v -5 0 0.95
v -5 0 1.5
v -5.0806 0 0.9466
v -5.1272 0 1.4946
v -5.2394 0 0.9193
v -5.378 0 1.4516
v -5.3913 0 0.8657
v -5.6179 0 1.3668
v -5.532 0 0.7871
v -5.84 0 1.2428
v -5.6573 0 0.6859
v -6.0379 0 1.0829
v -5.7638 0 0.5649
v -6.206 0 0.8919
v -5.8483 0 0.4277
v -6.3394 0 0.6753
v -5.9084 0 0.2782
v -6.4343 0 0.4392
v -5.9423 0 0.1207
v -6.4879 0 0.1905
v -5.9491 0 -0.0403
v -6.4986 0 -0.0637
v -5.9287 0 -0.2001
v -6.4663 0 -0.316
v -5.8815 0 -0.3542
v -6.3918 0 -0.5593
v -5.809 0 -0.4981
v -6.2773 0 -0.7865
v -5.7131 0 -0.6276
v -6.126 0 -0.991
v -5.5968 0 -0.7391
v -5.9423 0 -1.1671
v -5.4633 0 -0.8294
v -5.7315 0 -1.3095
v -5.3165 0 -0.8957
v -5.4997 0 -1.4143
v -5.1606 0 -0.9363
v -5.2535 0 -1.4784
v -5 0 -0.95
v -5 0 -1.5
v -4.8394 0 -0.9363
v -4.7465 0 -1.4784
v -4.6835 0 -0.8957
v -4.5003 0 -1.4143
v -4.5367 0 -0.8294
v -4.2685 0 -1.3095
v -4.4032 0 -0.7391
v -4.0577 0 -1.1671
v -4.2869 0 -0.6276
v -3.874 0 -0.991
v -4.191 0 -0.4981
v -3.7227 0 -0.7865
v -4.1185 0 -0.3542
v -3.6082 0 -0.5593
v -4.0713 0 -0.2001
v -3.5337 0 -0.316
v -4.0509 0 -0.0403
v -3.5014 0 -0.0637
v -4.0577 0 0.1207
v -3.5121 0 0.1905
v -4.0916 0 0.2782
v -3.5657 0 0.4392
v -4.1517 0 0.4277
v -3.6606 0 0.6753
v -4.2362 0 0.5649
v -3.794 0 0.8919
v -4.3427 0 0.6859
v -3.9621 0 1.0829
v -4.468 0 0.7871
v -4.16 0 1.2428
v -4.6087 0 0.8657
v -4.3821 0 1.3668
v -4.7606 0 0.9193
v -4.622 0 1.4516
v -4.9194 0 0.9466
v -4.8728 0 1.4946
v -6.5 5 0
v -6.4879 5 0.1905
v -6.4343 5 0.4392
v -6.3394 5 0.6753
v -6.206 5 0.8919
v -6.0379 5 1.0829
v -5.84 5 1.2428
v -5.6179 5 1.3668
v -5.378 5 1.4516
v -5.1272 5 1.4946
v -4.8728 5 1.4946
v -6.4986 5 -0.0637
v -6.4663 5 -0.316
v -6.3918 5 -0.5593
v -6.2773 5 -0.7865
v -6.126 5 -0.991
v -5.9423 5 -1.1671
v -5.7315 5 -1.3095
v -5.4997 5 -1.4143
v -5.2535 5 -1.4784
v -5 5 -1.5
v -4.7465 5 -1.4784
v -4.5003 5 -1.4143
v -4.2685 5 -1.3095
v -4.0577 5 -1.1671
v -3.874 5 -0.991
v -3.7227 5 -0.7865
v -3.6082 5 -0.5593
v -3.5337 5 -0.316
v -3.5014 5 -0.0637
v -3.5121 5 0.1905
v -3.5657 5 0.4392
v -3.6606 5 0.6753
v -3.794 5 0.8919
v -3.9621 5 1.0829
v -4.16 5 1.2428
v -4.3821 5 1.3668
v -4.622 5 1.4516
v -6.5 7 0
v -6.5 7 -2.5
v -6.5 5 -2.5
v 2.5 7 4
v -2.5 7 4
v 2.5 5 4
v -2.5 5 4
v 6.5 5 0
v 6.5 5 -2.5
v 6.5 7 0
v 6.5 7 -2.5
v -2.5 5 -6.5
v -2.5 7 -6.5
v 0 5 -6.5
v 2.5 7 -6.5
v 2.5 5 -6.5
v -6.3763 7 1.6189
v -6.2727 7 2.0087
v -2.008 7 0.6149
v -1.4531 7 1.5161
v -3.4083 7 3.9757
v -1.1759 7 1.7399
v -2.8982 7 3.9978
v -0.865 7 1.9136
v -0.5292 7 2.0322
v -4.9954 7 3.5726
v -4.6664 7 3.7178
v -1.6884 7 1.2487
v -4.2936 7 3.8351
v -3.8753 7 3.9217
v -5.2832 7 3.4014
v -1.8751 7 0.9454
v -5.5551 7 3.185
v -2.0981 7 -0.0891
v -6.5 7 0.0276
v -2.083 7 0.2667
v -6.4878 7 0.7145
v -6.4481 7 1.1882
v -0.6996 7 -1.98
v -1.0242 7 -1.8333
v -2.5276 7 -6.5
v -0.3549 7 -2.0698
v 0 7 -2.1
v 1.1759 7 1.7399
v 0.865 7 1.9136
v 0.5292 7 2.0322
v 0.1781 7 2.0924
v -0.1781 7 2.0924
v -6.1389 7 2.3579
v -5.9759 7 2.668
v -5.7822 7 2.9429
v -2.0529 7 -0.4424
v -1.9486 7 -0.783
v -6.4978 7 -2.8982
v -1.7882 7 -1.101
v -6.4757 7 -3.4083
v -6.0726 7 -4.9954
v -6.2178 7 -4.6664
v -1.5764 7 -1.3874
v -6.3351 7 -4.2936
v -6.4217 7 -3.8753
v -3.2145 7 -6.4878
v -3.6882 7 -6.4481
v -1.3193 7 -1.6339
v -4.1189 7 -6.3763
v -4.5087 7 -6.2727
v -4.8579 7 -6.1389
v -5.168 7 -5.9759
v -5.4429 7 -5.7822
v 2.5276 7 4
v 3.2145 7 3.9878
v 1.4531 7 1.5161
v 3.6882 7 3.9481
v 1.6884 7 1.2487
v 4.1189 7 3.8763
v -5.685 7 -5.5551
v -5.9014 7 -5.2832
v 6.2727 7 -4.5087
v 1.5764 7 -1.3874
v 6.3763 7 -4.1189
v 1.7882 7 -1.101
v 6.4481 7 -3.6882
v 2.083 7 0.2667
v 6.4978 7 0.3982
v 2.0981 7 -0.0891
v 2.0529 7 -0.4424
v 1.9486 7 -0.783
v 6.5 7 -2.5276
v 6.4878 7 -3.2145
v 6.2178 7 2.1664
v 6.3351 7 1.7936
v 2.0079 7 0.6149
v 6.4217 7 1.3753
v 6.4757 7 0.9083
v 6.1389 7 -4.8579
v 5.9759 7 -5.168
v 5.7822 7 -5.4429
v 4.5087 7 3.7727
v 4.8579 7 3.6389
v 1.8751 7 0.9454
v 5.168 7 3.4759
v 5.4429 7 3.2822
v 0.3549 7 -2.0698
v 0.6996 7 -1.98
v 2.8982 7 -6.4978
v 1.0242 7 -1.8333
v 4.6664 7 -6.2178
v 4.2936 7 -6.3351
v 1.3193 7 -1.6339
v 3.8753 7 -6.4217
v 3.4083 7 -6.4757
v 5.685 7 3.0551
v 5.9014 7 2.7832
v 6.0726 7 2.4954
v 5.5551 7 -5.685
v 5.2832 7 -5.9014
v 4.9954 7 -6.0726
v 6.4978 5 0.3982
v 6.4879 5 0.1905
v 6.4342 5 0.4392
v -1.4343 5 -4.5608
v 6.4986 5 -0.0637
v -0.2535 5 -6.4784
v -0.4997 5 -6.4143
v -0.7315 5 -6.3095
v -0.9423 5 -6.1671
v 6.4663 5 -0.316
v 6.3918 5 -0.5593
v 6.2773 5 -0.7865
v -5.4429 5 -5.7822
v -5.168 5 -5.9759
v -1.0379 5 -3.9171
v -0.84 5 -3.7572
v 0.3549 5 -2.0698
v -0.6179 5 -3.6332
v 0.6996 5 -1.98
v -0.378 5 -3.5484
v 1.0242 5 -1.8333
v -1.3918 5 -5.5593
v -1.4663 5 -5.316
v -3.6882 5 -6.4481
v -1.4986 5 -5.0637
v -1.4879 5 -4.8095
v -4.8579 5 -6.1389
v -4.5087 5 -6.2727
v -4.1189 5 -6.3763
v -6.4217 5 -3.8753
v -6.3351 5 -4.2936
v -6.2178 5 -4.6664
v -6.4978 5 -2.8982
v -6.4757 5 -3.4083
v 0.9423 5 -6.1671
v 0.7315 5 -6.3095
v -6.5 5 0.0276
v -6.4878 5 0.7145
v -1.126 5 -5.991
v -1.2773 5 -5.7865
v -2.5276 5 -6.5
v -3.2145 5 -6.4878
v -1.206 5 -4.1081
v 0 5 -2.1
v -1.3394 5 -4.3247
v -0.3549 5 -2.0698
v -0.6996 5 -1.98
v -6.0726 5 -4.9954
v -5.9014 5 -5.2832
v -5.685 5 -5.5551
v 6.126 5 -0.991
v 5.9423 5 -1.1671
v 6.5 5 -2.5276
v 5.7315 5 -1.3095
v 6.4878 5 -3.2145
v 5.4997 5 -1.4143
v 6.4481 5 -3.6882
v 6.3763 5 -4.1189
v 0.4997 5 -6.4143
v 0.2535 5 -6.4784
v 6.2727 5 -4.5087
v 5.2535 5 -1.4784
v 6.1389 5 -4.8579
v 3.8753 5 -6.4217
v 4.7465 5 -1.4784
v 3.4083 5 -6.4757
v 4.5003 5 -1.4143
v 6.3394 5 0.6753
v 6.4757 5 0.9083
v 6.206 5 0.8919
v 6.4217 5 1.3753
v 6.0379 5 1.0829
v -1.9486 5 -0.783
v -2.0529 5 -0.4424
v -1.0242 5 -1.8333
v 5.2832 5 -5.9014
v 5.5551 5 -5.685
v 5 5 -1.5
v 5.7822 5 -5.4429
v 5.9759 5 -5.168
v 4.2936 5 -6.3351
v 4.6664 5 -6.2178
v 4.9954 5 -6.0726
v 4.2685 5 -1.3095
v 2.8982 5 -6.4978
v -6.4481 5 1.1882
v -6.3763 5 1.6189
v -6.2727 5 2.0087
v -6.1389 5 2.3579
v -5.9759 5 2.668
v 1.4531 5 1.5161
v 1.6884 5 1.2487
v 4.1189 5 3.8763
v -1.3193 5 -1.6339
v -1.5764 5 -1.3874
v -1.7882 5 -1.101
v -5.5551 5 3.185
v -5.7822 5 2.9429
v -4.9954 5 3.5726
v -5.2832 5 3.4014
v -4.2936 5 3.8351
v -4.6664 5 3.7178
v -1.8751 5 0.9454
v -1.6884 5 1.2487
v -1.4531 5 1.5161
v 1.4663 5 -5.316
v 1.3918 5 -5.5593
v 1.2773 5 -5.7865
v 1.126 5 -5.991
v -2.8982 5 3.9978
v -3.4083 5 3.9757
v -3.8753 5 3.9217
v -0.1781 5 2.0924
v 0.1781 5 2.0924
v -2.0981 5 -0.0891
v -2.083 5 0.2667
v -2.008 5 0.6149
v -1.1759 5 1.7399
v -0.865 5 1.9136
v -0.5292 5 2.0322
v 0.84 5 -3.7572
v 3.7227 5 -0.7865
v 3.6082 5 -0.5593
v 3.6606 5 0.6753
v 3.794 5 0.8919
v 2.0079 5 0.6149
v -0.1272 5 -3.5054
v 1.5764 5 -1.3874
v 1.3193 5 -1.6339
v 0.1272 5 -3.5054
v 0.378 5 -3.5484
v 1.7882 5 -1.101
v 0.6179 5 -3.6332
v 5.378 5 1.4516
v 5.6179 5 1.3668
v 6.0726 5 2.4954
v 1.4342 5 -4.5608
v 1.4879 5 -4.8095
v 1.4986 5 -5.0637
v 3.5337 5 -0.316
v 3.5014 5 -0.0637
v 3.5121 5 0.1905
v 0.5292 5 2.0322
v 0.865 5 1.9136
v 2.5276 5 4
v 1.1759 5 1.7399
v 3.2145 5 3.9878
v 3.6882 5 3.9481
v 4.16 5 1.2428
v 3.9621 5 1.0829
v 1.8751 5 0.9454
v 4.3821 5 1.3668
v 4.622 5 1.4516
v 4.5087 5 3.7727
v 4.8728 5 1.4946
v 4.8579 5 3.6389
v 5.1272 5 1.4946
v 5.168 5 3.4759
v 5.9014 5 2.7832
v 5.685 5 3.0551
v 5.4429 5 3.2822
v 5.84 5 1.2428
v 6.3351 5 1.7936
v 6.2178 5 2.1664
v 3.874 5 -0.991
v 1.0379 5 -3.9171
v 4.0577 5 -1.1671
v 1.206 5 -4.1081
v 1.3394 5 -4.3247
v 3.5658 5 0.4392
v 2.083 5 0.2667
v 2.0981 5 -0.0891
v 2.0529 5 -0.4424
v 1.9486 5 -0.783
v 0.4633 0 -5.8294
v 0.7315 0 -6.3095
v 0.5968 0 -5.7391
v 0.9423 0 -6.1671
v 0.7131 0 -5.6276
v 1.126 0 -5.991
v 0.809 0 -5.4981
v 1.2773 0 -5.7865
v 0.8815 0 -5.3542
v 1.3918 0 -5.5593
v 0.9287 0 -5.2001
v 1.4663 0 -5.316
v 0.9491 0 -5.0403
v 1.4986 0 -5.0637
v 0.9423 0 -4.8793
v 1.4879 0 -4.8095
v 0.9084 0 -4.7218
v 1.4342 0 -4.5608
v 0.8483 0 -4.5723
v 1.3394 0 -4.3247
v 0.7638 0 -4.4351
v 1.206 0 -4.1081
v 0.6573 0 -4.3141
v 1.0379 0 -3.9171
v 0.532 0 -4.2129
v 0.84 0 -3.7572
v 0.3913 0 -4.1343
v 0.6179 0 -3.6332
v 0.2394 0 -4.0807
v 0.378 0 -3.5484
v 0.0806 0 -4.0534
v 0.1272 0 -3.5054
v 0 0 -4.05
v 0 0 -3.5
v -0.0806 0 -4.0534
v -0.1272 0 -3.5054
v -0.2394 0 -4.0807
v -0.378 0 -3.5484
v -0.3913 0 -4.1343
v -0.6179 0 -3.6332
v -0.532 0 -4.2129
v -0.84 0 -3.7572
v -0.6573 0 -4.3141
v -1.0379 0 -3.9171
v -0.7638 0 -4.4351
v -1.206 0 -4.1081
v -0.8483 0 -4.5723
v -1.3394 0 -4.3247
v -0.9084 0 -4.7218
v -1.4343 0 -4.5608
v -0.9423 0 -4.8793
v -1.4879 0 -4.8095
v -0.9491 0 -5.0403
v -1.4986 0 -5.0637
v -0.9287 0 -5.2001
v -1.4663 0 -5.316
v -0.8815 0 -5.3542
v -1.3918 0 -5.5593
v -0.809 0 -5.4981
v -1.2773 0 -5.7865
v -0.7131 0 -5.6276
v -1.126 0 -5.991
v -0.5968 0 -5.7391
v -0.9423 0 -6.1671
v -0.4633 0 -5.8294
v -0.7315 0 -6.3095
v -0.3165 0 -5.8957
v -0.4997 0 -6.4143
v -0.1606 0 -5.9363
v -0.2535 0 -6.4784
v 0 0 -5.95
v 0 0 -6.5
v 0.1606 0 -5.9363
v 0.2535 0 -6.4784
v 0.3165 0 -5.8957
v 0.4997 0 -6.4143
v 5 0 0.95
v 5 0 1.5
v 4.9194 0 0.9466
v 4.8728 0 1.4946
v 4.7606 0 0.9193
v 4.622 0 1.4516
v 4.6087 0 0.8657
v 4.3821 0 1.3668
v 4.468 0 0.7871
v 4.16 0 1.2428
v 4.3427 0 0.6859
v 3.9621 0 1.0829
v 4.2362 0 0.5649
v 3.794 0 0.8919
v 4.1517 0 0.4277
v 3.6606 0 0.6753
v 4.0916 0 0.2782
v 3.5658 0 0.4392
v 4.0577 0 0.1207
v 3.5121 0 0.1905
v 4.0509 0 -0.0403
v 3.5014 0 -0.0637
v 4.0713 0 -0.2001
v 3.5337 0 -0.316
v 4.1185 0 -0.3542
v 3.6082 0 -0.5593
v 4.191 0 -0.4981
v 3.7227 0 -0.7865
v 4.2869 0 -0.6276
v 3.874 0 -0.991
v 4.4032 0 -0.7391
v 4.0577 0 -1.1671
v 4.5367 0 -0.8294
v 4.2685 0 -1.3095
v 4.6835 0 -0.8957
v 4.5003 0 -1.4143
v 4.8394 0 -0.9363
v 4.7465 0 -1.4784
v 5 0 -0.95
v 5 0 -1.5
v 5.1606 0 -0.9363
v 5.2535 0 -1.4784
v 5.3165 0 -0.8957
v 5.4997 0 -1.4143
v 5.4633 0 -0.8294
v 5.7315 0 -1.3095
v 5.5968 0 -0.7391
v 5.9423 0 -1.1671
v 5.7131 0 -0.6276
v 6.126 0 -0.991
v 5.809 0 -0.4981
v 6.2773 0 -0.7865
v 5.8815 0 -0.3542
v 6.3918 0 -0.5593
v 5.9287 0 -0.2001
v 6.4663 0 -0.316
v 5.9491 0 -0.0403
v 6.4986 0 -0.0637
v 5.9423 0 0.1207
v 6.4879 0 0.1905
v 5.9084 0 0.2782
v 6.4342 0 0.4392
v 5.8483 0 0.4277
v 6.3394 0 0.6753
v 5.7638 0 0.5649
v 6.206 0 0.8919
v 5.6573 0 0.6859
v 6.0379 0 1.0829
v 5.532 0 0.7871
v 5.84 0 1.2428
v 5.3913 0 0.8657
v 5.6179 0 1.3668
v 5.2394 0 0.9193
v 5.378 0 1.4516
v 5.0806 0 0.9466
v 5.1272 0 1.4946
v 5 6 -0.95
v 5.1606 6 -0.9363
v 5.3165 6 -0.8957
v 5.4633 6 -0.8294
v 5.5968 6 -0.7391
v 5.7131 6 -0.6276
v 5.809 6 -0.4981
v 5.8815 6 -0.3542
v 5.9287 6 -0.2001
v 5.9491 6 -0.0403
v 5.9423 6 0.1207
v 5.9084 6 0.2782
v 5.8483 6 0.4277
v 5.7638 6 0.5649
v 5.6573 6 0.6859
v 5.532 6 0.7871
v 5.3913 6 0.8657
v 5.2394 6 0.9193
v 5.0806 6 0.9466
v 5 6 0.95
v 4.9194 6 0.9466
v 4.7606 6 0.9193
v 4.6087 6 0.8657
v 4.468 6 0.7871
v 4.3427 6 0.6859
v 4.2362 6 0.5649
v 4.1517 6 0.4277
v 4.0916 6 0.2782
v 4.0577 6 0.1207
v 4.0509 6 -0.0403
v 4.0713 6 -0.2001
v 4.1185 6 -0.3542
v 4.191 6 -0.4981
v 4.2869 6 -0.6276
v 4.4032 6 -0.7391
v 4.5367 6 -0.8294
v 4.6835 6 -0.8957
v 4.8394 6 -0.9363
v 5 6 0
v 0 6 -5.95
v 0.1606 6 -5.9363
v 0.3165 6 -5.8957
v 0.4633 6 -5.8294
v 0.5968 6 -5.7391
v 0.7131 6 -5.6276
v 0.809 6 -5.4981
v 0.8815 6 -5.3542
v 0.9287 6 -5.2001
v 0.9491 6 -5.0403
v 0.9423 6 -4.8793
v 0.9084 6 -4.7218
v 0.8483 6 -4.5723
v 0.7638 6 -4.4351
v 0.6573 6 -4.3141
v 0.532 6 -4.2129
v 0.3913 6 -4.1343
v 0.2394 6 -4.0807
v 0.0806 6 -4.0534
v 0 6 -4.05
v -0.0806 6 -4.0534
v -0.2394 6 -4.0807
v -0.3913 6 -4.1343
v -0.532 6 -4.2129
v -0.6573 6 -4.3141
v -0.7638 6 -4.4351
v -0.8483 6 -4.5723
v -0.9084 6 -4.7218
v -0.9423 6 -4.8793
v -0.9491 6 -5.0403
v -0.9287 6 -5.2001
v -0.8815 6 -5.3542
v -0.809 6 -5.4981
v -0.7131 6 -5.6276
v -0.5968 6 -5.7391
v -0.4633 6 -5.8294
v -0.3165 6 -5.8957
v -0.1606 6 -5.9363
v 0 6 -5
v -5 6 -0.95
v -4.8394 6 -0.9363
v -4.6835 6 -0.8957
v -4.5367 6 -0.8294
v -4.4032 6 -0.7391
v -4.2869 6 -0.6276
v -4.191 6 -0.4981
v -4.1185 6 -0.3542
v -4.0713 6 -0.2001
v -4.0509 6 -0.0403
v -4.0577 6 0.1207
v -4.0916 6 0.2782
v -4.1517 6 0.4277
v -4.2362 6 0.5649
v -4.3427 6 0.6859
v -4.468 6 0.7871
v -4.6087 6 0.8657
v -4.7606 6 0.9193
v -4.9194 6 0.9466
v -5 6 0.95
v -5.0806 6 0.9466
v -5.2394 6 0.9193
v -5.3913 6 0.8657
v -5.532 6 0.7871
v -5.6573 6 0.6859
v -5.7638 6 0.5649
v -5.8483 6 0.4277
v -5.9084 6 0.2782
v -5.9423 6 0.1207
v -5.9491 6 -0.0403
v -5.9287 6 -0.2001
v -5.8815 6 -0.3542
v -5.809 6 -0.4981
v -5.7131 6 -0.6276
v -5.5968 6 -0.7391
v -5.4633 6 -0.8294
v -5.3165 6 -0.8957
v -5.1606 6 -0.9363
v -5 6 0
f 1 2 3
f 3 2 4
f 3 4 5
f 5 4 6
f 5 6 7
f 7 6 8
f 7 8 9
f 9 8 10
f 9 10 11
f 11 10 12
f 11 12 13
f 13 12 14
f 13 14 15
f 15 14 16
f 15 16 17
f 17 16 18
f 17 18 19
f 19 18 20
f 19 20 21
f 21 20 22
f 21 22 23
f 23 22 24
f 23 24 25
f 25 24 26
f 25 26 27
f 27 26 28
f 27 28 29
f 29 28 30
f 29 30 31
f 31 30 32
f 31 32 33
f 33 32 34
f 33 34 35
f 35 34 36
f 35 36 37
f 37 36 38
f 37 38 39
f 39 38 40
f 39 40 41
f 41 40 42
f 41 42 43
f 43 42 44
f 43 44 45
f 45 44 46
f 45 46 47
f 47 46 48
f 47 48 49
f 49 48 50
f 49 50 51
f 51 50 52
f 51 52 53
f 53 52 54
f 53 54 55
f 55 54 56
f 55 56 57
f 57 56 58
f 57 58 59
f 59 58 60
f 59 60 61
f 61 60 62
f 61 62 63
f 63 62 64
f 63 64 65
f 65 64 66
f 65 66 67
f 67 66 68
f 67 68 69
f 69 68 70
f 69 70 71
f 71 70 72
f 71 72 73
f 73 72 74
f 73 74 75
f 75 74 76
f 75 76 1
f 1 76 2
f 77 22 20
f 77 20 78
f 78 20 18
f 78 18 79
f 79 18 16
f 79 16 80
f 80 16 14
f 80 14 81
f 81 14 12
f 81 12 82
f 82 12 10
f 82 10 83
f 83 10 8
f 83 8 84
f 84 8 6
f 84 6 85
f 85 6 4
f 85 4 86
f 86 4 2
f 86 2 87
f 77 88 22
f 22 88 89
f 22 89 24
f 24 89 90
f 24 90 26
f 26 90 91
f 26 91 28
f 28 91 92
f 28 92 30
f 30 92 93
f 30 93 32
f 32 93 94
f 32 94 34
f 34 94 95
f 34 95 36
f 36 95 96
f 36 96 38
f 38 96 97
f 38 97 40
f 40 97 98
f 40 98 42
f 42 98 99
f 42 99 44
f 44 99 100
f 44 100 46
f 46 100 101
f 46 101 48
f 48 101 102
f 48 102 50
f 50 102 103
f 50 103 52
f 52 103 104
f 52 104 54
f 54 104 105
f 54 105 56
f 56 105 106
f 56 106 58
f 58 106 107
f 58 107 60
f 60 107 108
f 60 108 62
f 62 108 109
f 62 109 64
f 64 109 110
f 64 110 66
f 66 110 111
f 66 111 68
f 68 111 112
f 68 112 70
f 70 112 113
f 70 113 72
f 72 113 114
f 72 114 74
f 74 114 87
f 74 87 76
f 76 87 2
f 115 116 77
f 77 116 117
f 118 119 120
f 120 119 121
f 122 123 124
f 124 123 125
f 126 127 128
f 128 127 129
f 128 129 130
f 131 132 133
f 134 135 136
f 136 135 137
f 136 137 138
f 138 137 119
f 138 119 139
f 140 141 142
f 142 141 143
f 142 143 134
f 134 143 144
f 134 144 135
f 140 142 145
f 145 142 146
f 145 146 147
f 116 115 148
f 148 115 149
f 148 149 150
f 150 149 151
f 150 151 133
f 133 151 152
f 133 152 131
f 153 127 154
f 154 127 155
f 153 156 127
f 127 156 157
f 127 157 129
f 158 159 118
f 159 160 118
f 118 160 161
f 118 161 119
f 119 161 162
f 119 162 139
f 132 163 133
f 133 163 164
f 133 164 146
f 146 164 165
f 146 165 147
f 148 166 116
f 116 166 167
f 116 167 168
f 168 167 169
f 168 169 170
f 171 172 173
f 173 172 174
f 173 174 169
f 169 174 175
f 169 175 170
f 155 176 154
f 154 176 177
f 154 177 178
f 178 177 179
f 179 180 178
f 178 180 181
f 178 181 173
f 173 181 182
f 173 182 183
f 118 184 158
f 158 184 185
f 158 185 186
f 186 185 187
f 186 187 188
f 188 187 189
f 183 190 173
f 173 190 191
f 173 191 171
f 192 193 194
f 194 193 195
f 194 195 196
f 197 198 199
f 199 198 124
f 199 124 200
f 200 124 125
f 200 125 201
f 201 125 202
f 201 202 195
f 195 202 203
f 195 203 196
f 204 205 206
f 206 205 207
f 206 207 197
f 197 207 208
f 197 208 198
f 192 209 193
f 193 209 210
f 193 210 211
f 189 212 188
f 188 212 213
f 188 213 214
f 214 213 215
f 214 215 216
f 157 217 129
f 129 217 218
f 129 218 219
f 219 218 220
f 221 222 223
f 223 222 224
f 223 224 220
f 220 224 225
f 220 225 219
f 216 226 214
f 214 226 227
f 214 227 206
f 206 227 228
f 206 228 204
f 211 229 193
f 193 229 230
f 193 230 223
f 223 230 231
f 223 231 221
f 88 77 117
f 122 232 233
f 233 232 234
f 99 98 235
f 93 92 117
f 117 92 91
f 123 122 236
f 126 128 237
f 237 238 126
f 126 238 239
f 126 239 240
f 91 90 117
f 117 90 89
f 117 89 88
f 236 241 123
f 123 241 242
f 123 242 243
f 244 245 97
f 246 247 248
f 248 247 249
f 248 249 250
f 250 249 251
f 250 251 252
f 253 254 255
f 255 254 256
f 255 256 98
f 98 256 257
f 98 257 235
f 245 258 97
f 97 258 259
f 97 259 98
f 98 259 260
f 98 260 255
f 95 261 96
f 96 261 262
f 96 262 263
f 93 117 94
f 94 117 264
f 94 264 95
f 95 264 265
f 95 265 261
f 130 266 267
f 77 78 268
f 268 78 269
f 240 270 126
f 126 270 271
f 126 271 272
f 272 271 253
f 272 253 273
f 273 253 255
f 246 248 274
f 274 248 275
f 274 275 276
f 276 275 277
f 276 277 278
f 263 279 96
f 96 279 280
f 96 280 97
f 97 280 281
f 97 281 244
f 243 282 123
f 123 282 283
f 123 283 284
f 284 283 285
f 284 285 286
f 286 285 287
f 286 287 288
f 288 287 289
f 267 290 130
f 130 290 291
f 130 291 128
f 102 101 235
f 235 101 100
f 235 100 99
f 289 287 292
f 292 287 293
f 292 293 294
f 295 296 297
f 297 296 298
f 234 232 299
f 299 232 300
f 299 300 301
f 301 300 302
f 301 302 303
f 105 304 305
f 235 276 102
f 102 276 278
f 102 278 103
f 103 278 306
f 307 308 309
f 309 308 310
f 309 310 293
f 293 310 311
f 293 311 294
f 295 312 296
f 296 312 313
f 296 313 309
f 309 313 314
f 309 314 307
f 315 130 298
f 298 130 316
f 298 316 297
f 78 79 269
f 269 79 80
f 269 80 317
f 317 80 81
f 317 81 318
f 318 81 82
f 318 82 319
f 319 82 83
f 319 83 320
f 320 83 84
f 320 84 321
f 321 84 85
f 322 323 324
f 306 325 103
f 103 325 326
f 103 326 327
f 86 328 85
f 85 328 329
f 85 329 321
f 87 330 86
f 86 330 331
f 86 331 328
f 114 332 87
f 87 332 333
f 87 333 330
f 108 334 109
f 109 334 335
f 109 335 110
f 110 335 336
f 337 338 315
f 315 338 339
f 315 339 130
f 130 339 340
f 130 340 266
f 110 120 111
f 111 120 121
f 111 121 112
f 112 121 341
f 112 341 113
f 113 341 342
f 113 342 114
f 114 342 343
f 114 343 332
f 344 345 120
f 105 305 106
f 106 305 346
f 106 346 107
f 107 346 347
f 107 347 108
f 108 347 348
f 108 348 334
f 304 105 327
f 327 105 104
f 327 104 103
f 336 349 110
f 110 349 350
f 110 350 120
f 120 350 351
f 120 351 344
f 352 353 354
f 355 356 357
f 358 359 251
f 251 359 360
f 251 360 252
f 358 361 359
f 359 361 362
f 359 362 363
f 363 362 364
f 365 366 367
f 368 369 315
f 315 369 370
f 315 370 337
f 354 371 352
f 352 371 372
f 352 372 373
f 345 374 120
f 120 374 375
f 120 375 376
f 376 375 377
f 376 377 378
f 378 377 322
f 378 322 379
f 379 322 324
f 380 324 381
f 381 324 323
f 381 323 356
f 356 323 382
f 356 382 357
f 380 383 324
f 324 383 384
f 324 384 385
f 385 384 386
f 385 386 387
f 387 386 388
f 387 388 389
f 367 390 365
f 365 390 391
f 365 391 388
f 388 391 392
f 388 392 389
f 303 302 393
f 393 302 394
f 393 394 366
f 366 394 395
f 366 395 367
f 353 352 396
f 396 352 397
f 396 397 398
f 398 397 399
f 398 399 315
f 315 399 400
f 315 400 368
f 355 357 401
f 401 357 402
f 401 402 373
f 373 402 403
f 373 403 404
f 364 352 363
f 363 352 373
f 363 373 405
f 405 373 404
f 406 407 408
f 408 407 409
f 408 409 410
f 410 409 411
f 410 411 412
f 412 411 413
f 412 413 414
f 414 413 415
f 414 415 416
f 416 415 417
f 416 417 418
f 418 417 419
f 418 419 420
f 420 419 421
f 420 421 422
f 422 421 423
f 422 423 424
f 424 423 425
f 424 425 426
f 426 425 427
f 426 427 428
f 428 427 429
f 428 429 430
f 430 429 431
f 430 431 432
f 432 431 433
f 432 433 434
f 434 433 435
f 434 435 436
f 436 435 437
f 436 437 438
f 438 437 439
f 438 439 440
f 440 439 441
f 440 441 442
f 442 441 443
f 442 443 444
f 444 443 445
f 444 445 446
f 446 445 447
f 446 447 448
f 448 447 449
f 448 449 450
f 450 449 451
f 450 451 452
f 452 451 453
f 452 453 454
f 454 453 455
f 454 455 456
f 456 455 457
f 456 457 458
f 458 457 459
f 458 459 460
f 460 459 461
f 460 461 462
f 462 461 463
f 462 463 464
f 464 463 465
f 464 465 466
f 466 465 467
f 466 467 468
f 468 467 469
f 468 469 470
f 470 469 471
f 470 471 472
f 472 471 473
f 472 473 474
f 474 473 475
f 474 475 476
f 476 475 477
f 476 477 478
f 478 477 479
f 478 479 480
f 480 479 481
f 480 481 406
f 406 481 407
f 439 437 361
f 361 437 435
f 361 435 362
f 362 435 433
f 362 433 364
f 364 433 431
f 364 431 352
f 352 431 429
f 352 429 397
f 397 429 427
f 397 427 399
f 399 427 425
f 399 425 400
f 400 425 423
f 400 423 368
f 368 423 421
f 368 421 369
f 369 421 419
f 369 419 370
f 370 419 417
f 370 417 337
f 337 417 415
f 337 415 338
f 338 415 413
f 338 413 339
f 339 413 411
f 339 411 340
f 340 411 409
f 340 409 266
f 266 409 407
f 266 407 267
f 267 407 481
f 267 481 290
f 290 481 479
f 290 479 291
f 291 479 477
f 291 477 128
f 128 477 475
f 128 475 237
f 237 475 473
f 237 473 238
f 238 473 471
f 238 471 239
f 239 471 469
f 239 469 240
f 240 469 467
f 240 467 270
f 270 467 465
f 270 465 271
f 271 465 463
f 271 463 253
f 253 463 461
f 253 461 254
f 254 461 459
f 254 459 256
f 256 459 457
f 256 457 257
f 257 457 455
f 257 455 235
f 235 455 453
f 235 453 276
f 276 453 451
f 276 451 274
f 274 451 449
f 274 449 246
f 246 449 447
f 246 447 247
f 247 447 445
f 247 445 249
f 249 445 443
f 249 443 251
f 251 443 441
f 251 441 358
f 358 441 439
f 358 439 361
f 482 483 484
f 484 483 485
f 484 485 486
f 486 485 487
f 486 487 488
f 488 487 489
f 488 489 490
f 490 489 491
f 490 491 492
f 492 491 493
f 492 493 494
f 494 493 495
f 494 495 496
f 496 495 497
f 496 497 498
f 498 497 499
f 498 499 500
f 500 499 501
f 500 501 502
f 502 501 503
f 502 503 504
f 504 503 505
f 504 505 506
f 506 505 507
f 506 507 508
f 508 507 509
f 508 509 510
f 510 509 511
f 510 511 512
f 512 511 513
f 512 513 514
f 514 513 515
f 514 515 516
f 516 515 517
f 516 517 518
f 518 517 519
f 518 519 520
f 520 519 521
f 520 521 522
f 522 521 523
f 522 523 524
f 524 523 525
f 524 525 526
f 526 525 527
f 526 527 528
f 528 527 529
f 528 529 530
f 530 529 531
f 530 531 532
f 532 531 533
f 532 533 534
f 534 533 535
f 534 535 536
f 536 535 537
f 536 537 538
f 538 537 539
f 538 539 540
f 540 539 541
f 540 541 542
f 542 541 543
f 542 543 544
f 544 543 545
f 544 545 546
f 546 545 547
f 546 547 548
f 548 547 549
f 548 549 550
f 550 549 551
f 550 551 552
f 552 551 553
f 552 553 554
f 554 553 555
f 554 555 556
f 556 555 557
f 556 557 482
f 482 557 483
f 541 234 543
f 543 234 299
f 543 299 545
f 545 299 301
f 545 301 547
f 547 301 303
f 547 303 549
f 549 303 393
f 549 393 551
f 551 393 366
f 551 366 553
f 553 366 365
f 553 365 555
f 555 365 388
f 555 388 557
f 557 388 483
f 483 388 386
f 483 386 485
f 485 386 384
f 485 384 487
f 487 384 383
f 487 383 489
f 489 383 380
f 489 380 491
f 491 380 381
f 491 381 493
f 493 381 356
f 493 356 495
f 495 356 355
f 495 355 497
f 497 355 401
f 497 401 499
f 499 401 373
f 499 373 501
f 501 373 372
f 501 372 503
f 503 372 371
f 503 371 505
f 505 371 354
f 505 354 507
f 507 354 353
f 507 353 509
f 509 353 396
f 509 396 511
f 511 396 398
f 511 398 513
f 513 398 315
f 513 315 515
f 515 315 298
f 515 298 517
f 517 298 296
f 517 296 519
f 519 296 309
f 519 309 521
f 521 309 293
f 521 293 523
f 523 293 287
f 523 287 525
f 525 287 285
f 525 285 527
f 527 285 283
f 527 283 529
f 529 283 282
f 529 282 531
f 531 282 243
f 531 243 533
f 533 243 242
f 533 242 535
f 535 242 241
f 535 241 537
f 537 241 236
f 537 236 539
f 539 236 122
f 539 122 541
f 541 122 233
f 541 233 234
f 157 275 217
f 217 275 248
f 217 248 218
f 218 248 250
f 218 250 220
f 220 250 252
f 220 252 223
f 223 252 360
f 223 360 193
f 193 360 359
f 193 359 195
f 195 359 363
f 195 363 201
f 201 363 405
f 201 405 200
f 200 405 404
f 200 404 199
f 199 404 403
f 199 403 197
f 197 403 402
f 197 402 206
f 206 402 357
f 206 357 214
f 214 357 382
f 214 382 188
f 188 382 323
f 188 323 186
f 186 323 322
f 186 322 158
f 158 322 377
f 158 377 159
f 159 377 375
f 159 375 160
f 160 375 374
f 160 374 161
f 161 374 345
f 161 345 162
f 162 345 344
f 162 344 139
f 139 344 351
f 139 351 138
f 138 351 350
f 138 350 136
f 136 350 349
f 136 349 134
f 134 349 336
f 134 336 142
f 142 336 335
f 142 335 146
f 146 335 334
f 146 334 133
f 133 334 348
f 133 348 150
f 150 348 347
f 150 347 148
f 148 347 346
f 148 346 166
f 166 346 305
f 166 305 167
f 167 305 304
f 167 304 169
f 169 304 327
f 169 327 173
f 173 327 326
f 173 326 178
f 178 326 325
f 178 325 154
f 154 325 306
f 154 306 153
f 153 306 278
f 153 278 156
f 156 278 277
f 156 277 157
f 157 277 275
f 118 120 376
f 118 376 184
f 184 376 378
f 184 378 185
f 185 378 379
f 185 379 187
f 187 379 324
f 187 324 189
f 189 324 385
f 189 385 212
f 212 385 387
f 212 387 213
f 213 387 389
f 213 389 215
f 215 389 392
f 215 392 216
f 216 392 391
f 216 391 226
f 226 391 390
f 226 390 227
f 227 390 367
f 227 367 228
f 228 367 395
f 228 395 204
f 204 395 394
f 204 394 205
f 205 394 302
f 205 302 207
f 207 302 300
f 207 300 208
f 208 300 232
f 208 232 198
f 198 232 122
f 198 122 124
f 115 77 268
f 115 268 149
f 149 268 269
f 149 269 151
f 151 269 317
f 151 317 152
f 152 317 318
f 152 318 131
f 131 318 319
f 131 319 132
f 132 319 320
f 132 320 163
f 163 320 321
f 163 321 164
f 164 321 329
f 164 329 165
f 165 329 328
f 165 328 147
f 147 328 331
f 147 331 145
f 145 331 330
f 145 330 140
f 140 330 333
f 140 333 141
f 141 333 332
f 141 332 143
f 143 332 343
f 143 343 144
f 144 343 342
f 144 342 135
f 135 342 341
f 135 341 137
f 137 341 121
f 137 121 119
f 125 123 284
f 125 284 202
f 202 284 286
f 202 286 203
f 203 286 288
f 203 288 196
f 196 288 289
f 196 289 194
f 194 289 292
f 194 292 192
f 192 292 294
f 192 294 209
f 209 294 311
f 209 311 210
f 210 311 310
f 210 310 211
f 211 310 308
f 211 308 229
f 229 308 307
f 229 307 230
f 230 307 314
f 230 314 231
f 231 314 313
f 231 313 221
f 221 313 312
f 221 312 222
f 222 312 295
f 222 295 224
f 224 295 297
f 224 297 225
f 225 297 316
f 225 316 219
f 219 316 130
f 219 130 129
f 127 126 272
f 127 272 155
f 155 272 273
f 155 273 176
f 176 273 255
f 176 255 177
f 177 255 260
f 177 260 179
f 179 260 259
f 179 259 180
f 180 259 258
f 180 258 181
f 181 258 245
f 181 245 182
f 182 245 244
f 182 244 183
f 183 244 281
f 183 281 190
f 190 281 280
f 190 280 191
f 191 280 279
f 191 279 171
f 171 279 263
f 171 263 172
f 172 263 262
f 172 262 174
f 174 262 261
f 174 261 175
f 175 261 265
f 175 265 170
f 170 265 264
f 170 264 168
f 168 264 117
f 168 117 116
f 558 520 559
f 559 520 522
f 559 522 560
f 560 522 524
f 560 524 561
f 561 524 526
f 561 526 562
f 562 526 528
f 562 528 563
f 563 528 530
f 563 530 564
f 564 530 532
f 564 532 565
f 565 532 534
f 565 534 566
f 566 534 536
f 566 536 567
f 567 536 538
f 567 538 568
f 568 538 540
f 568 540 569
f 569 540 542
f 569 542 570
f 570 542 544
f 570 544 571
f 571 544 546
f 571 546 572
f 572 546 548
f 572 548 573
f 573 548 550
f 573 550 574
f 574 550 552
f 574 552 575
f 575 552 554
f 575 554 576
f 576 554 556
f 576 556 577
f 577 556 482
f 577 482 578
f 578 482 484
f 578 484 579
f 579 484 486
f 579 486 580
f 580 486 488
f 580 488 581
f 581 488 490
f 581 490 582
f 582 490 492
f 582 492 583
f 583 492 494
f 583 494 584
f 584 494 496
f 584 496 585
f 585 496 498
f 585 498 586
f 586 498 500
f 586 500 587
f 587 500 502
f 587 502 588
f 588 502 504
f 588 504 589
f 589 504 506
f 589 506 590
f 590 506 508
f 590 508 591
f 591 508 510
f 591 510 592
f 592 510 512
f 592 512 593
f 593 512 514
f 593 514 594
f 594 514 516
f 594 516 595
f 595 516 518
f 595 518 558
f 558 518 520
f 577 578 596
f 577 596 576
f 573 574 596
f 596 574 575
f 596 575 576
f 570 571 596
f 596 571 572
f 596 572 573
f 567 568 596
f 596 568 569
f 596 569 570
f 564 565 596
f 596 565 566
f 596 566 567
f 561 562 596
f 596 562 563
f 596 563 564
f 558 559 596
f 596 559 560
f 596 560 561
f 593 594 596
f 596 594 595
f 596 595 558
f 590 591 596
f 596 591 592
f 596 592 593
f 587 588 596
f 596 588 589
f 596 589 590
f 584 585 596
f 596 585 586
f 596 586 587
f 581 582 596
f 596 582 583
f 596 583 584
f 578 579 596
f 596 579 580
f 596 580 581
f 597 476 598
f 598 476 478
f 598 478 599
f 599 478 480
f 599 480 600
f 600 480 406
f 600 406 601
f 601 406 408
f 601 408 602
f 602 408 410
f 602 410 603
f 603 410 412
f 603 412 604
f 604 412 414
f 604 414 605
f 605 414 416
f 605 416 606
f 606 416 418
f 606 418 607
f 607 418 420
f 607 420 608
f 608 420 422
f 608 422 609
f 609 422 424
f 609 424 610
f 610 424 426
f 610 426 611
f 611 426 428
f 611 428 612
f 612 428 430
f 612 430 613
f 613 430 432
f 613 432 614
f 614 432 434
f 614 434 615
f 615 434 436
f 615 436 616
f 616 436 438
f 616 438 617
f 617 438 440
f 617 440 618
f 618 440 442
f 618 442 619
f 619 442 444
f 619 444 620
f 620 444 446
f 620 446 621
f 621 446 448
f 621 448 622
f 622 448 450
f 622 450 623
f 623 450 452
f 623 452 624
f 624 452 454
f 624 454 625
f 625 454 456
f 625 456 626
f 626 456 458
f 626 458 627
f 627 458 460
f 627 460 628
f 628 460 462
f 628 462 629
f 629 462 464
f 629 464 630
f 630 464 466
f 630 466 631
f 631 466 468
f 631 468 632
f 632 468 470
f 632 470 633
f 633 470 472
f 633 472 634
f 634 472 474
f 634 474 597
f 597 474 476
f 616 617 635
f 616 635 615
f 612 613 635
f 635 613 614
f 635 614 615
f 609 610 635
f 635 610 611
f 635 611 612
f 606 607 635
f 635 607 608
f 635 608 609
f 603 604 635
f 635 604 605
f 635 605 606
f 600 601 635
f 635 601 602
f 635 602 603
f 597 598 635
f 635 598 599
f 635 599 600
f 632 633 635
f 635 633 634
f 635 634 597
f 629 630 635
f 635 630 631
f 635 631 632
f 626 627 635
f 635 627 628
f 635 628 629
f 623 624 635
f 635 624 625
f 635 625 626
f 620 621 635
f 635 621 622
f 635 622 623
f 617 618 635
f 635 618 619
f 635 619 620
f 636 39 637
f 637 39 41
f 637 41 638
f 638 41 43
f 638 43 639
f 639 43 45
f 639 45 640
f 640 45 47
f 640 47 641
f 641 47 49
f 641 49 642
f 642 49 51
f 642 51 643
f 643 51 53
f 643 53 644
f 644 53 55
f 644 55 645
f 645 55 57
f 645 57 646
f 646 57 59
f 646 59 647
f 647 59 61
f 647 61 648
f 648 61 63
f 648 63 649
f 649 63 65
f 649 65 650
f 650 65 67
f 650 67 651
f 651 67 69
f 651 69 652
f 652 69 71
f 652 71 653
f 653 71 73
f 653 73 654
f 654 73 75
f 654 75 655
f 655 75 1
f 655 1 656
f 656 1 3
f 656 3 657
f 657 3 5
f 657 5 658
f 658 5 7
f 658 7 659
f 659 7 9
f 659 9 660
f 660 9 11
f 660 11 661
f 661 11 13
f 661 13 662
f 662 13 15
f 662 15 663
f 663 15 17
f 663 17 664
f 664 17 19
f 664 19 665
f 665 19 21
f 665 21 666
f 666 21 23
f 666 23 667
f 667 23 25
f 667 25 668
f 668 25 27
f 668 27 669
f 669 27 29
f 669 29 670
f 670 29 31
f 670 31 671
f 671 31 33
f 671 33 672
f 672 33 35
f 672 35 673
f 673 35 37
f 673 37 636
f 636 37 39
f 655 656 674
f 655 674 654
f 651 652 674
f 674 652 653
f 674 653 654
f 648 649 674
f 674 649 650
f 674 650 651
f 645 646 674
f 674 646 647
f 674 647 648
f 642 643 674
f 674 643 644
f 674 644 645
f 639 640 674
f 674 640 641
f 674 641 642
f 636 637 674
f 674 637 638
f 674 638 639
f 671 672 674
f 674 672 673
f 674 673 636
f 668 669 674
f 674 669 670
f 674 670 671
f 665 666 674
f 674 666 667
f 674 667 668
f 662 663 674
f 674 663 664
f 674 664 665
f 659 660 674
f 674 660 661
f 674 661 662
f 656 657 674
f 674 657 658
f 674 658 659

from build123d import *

# Parameters (mm, degrees)
SKETCH_1_R          = 1.5
EXTRUDE_1_DEPTH     = 5
EXTRUDE_1_2_DEPTH   = 5
EXTRUDE_1_3_DEPTH   = 5
SKETCH_2_W          = 13
SKETCH_2_H          = 10.5
EXTRUDE_6_DEPTH     = 2
SKETCH_1_6_R        = 2.1
CUT_EXTRUDE_2_DEPTH = 7
FILLET_1_SIZE       = 4
SKETCH_1_7_R        = 0.95
CUT_EXTRUDE_3_DEPTH = 6


with BuildPart() as part:
    # 草图1 → 凸台-拉伸1 (new body)
    with BuildSketch(Plane(origin=(0, 0, 0), x_dir=(1, 0, 0), z_dir=(0, 1, 0))):
        with Locations(Location((-5, 0, 0), (0, 0, 270))):
            Circle(SKETCH_1_R)
    extrude(amount=EXTRUDE_1_DEPTH)



with BuildPart() as body_2:
    # 草图1 → Extrude 1 2 (new body)
    with BuildSketch(Plane(origin=(0, 0, 0), x_dir=(1, 0, 0), z_dir=(0, 1, 0))):
        with Locations(Location((0, 5, 0), (0, 0, 270))):
            Circle(SKETCH_1_R)
    extrude(amount=EXTRUDE_1_2_DEPTH)


with BuildPart() as body_3:
    # 草图1 → Extrude 1 3 (new body)
    with BuildSketch(Plane(origin=(0, 0, 0), x_dir=(1, 0, 0), z_dir=(0, 1, 0))):
        with Locations(Location((5, 0, 0), (0, 0, 270))):
            Circle(SKETCH_1_R)
    extrude(amount=EXTRUDE_1_3_DEPTH)


with BuildPart() as part_1:
    add(part.part)

    add(body_2.part)  # 凸台-拉伸6 merges body 2

    add(body_3.part)  # 凸台-拉伸6 merges body 3
    # 草图2 → 凸台-拉伸6 (add)
    with BuildSketch(Plane(origin=(0, 5, 0), x_dir=(1, 0, 0), z_dir=(0, 1, 0))):
        with Locations((0, 1.25)):
            Rectangle(SKETCH_2_W, SKETCH_2_H)
    extrude(amount=EXTRUDE_6_DEPTH)

    # 草图1<6> → 切除-拉伸2 (cut)
    with BuildSketch(Plane(origin=(0, 0, 0), x_dir=(1, 0, 0), z_dir=(0, 1, 0))):
        with Locations(Location((0, 0, 0), (0, 0, 90))):
            Circle(SKETCH_1_6_R)
    extrude(amount=CUT_EXTRUDE_2_DEPTH, mode=Mode.SUBTRACT)

    # 圆角1
    # a fillet whose section is not a circle: 4 mm, written as the material it takes off along each edge
    with BuildSketch(Plane(origin=(6.5, -5, -6.5), x_dir=(-1, 0, 0), z_dir=(0, 1, 0)), Plane(origin=(6.5, -5, 4), x_dir=(0, 0, -1), z_dir=(0, 1, 0)), Plane(origin=(-6.5, -5, 4), x_dir=(1, 0, 0), z_dir=(0, 1, 0))) as fillet_1_piece_1:
        with BuildLine():
            add(Edge.make_bspline([(FILLET_1_SIZE, 0), (FILLET_1_SIZE * 0.831801948466, 0), (FILLET_1_SIZE * 0.663603896932, 0), (FILLET_1_SIZE * 0.292893218813, FILLET_1_SIZE * 0.0716919198361), (FILLET_1_SIZE * 0.0716919198361, FILLET_1_SIZE * 0.292893218813), (0, FILLET_1_SIZE * 0.663603896932), (0, FILLET_1_SIZE * 0.831801948466), (0, FILLET_1_SIZE)], knots=[0, 0, 0, 0, 0, 0, 0.5, 0.5, 1, 1, 1, 1, 1, 1], degree=5))
            Line((0, FILLET_1_SIZE), (0, 0))
            Line((0, 0), (FILLET_1_SIZE, 0))
        make_face()
    extrude(amount=22, mode=Mode.SUBTRACT)
    with BuildSketch(Plane(origin=(-6.5, -5, -6.5), x_dir=(1, 0, 0), z_dir=(0, 1, 0))) as fillet_1_piece_2:
        with BuildLine():
            add(Edge.make_bspline([(FILLET_1_SIZE, 0), (FILLET_1_SIZE * 0.831801948466, 0), (FILLET_1_SIZE * 0.663603896932, 0), (FILLET_1_SIZE * 0.292893218813, -FILLET_1_SIZE * 0.0716919198361), (FILLET_1_SIZE * 0.0716919198361, -FILLET_1_SIZE * 0.292893218813), (0, -FILLET_1_SIZE * 0.663603896932), (0, -FILLET_1_SIZE * 0.831801948466), (0, -FILLET_1_SIZE)], knots=[0, 0, 0, 0, 0, 0, 0.5, 0.5, 1, 1, 1, 1, 1, 1], degree=5))
            Line((0, -FILLET_1_SIZE), (0, 0))
            Line((0, 0), (FILLET_1_SIZE, 0))
        make_face()
    extrude(amount=22, mode=Mode.SUBTRACT)

    # 草图1<7> → 切除-拉伸3 (cut)
    with BuildSketch(Plane(origin=(0, 0, 0), x_dir=(1, 0, 0), z_dir=(0, 1, 0))):
        with Locations(Location((5, 0, 0), (0, 0, 270))):
            Circle(SKETCH_1_7_R)
        with Locations(Location((0, 5, 0), (0, 0, 270))):
            Circle(SKETCH_1_7_R)
        with Locations(Location((-5, 0, 0), (0, 0, 270))):
            Circle(SKETCH_1_7_R)
    extrude(amount=CUT_EXTRUDE_3_DEPTH, mode=Mode.SUBTRACT)


solid = part_1.part
